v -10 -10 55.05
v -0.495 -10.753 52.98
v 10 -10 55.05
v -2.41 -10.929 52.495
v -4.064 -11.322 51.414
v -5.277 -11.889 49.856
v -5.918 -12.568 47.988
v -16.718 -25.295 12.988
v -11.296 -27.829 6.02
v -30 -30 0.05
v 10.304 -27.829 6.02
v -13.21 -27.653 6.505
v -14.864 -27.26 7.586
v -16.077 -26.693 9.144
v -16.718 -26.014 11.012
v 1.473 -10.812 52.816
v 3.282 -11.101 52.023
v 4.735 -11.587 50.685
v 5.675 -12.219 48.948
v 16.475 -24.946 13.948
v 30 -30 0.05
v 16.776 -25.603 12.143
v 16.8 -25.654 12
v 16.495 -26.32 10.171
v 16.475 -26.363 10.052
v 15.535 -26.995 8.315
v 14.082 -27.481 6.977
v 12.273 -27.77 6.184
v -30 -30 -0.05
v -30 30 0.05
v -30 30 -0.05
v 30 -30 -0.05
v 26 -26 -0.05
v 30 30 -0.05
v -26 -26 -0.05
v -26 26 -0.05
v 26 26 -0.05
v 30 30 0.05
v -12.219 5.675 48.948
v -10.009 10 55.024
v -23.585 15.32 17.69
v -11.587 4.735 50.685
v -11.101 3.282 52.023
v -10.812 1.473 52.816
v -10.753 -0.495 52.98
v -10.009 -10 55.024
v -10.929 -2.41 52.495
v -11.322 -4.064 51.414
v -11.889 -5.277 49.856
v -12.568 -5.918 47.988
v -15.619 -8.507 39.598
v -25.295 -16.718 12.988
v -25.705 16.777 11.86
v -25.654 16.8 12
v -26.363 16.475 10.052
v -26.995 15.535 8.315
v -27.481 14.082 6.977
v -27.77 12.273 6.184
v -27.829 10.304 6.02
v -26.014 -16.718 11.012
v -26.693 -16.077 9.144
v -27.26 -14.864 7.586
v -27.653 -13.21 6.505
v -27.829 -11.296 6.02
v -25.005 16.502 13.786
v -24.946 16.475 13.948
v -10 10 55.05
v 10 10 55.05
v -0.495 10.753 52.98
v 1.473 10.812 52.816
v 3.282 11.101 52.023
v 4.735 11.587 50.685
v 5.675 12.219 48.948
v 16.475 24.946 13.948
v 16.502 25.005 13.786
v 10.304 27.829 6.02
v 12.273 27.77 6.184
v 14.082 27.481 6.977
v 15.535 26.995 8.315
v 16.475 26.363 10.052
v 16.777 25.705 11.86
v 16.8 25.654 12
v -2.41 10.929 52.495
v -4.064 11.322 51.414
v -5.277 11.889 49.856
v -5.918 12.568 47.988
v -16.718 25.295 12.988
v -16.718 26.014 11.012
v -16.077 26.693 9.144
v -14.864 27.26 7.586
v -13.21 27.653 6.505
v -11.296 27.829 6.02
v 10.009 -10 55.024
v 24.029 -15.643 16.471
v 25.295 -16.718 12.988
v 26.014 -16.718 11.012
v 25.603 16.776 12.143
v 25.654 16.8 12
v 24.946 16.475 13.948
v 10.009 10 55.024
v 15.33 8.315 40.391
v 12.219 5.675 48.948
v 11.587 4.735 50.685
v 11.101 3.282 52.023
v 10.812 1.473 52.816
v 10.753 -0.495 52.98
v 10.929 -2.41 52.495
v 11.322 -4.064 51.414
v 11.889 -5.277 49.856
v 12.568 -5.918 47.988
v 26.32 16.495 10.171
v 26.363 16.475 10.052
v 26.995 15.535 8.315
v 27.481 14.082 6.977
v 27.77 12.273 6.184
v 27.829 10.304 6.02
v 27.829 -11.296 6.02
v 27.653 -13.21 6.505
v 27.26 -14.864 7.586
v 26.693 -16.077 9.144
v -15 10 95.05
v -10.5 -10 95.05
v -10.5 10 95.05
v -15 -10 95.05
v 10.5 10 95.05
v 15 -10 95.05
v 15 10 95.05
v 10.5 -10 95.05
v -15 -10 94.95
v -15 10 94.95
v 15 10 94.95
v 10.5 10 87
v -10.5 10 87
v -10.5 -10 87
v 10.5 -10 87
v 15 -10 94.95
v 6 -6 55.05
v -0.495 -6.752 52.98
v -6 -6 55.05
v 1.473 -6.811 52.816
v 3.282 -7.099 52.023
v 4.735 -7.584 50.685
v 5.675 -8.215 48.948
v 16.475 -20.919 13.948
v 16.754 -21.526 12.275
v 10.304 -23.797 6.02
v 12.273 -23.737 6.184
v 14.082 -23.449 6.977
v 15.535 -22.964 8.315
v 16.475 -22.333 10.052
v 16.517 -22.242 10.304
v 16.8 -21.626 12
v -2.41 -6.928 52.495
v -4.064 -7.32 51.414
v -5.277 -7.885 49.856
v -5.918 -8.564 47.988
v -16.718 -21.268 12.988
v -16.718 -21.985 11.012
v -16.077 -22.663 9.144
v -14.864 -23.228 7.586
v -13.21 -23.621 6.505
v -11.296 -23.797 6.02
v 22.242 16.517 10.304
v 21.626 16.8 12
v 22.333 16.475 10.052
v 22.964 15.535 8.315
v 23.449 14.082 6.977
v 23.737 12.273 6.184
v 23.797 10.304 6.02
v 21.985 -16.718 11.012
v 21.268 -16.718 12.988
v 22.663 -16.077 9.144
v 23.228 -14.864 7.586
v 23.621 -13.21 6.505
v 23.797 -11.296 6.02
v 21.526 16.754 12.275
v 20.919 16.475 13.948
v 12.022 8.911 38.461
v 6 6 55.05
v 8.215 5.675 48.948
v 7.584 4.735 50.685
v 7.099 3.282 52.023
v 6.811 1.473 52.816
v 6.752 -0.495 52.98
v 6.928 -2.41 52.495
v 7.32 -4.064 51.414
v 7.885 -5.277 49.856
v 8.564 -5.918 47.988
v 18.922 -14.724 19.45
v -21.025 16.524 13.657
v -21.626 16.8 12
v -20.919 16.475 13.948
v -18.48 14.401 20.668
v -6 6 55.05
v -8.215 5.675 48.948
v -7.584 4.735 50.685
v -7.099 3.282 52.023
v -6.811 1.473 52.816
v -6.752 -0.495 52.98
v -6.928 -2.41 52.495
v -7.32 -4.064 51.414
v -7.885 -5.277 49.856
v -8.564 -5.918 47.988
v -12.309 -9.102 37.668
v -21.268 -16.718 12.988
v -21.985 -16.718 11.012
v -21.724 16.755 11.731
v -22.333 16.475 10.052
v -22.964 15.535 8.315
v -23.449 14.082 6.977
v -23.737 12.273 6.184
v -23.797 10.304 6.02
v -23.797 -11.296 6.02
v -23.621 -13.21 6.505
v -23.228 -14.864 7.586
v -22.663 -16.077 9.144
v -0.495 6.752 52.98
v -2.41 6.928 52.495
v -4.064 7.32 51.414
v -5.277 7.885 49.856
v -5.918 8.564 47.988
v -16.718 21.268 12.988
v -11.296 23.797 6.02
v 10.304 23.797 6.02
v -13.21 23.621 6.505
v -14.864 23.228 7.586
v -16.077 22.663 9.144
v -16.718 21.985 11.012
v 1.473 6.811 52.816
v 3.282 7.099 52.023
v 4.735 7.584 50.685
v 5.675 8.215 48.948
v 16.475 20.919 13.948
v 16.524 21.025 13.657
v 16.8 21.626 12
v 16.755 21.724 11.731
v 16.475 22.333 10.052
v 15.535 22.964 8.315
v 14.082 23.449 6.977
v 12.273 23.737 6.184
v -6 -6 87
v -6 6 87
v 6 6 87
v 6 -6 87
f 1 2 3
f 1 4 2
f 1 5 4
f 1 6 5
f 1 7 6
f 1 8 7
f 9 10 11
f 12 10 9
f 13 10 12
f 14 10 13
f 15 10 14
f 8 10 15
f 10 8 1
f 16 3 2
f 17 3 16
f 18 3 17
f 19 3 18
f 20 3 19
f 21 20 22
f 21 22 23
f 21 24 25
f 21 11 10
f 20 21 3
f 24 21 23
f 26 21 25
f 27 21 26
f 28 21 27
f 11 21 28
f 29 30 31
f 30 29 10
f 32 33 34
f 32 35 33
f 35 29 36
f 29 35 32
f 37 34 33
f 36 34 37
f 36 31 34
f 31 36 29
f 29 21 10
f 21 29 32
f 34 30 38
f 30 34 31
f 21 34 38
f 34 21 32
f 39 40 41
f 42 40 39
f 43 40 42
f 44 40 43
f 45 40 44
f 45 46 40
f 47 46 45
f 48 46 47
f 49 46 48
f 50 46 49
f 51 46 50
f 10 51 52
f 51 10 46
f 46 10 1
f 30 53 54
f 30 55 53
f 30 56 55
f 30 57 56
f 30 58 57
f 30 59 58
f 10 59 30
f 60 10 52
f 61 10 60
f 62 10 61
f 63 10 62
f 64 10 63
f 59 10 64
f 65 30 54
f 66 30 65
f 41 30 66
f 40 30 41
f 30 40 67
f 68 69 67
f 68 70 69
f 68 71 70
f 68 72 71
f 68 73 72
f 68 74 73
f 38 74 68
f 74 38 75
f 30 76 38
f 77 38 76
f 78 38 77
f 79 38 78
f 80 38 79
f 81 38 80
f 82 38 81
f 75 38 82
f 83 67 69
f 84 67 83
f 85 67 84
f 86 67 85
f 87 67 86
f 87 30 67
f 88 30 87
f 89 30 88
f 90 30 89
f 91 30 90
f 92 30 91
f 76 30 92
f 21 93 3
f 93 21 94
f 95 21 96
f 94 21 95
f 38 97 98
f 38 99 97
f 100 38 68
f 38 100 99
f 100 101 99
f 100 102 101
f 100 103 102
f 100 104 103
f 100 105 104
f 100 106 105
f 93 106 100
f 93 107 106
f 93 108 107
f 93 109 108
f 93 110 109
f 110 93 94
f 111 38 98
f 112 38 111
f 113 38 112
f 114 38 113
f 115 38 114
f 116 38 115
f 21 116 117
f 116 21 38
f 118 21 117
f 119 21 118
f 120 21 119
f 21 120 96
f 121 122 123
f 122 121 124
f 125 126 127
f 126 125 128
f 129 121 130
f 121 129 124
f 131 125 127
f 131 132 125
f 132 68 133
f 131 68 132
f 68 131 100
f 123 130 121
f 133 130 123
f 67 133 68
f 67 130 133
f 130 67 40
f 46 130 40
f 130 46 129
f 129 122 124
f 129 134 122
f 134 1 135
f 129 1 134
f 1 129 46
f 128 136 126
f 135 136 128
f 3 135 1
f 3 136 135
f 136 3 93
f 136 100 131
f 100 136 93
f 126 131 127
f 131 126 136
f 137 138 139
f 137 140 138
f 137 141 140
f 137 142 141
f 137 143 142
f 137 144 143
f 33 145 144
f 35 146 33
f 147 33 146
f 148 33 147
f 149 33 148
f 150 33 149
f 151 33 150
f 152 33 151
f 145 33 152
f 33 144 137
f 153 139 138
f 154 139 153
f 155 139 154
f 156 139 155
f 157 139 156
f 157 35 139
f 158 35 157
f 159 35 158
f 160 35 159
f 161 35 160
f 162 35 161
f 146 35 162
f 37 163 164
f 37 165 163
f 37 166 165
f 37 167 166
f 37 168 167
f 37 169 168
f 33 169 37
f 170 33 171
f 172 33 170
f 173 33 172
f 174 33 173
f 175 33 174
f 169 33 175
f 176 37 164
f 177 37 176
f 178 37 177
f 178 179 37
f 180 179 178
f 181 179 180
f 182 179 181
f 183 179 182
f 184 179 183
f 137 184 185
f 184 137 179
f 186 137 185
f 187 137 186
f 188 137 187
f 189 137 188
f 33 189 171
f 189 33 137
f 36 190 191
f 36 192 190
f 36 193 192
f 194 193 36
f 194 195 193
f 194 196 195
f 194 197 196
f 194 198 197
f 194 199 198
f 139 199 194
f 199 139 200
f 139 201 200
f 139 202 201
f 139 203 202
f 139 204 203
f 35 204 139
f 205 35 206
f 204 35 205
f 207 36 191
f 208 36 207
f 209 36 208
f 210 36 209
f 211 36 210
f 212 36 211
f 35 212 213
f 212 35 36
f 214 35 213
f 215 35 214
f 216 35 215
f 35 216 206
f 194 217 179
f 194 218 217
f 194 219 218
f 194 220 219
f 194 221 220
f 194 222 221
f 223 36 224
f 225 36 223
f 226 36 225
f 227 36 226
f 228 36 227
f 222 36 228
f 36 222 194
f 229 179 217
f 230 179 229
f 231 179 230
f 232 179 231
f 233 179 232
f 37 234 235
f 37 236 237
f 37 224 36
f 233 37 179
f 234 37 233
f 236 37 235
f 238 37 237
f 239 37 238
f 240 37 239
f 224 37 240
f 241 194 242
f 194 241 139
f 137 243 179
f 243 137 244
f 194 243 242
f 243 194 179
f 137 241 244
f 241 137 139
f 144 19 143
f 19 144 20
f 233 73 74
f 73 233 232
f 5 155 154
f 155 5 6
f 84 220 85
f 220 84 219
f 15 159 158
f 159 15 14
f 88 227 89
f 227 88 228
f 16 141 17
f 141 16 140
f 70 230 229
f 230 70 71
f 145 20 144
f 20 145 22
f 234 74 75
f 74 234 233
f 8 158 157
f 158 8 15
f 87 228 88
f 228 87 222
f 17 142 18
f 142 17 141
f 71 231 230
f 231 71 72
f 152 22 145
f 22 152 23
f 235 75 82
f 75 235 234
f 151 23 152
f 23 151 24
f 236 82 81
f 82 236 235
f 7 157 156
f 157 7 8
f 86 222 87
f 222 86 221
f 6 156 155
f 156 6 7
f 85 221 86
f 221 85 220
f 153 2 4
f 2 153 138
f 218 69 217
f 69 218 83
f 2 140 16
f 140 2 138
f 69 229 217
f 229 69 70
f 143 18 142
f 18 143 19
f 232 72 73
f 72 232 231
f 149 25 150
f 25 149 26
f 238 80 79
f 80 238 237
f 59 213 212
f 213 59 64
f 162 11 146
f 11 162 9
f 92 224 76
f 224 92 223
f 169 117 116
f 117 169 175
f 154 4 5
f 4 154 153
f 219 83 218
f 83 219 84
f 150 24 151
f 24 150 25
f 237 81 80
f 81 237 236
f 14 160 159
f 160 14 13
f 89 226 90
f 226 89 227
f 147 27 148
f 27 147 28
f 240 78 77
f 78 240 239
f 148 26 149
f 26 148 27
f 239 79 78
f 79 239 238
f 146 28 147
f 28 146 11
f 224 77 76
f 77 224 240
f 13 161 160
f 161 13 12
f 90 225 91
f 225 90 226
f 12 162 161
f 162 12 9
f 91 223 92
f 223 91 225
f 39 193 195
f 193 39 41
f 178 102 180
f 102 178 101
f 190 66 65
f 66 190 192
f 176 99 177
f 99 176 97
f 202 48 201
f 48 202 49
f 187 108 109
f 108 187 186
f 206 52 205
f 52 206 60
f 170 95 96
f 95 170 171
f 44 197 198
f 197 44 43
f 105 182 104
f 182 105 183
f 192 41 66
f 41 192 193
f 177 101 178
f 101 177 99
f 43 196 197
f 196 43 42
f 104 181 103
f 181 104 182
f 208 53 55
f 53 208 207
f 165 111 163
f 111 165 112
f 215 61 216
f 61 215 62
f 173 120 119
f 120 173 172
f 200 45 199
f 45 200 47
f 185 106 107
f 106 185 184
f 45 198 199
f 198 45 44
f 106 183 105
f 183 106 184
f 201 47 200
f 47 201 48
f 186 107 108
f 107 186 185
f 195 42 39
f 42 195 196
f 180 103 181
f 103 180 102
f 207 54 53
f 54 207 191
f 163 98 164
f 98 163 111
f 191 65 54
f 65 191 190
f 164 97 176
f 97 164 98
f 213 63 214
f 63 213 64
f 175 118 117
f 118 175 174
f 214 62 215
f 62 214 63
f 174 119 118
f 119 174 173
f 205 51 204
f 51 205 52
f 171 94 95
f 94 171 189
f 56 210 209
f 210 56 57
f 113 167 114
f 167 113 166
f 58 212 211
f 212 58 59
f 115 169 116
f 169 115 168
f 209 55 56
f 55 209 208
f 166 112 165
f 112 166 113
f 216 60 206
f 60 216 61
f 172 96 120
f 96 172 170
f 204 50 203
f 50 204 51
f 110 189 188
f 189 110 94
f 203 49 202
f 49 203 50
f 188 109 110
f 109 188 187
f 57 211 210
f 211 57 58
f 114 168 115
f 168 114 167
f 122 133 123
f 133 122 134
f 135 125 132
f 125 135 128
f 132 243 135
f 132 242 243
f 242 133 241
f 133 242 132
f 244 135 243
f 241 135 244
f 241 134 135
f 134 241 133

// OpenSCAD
wall = 8; // wall thickness is actually half of this

footX = 60;
footY = footX;

neckZ = 55;
neckX = 20;
neckY = 20;

topZ = 95;
topX = 30;
topY = neckY;

hollowBottomX = footX - wall;
hollowBottomY = hollowBottomX;

hollowTopZ = neckZ;
hollowTopX = neckX - wall;
hollowTopY = neckY - wall;
hollowNeckHeight = 2 * ( topZ - neckZ);

channelZ = 87;
channelX = 21;
channelY = topY + 1;

difference(){
    body();
    hollowOut();
    channel();
    sideCutouts();
}

module body(){
    union(){
        hull(){
            foot();
            neck();
        }
        hull(){
            neck();
            top();
        }
    }
}

module hollowOut(){
    union(){
        hull(){
            hollowBottom();
            hollowTop();
        }
        translate([0, 0, neckZ]){
            cube([hollowTopX, hollowTopY, hollowNeckHeight], center = true);
        }
    }
}

module foot(){
    cube([footX, footY, 0.1], center = true);
}

module neck(){
    translate([0, 0, neckZ]){
        cube([neckX, neckY, 0.1], center = true);
    }
}

module top(){
    translate([0, 0, topZ]){
      cube([topX, topY, 0.1], center = true);
    }
}

module hollowBottom(){
    translate([0, 0, -0.1]){
      cube([hollowBottomX, hollowBottomY, 0.1], center = true);
    }
}

module hollowTop(){
    translate([0, 0, hollowTopZ]){
      cube([hollowTopX, hollowTopY, 0.1], center = true);
    }
}

module channel(){
    translate([0, 0, channelZ + 5]){
      cube([channelX, channelY, 10], center = true);
    }
}

module sideCutouts(){
    cO = 6;
    for(rA = [0, 90]){
        rotate([0, 0, rA]){
            hull(){
                translate([0, 0, neckZ - cO - 2]){
                    rotate([90, 0, 0]){
                        cylinder(h = footX, r = cO, center = true);
                    }
                }
                for(cX = [footX - cO, cO - footX]){
                    translate([0.2 * cX, 0, 2 * cO]){
                        rotate([90, 0, 0]){
                            cylinder(h = footX, r = cO, center = true);
                        }
                    }
                }
            }
        }
    }
}
